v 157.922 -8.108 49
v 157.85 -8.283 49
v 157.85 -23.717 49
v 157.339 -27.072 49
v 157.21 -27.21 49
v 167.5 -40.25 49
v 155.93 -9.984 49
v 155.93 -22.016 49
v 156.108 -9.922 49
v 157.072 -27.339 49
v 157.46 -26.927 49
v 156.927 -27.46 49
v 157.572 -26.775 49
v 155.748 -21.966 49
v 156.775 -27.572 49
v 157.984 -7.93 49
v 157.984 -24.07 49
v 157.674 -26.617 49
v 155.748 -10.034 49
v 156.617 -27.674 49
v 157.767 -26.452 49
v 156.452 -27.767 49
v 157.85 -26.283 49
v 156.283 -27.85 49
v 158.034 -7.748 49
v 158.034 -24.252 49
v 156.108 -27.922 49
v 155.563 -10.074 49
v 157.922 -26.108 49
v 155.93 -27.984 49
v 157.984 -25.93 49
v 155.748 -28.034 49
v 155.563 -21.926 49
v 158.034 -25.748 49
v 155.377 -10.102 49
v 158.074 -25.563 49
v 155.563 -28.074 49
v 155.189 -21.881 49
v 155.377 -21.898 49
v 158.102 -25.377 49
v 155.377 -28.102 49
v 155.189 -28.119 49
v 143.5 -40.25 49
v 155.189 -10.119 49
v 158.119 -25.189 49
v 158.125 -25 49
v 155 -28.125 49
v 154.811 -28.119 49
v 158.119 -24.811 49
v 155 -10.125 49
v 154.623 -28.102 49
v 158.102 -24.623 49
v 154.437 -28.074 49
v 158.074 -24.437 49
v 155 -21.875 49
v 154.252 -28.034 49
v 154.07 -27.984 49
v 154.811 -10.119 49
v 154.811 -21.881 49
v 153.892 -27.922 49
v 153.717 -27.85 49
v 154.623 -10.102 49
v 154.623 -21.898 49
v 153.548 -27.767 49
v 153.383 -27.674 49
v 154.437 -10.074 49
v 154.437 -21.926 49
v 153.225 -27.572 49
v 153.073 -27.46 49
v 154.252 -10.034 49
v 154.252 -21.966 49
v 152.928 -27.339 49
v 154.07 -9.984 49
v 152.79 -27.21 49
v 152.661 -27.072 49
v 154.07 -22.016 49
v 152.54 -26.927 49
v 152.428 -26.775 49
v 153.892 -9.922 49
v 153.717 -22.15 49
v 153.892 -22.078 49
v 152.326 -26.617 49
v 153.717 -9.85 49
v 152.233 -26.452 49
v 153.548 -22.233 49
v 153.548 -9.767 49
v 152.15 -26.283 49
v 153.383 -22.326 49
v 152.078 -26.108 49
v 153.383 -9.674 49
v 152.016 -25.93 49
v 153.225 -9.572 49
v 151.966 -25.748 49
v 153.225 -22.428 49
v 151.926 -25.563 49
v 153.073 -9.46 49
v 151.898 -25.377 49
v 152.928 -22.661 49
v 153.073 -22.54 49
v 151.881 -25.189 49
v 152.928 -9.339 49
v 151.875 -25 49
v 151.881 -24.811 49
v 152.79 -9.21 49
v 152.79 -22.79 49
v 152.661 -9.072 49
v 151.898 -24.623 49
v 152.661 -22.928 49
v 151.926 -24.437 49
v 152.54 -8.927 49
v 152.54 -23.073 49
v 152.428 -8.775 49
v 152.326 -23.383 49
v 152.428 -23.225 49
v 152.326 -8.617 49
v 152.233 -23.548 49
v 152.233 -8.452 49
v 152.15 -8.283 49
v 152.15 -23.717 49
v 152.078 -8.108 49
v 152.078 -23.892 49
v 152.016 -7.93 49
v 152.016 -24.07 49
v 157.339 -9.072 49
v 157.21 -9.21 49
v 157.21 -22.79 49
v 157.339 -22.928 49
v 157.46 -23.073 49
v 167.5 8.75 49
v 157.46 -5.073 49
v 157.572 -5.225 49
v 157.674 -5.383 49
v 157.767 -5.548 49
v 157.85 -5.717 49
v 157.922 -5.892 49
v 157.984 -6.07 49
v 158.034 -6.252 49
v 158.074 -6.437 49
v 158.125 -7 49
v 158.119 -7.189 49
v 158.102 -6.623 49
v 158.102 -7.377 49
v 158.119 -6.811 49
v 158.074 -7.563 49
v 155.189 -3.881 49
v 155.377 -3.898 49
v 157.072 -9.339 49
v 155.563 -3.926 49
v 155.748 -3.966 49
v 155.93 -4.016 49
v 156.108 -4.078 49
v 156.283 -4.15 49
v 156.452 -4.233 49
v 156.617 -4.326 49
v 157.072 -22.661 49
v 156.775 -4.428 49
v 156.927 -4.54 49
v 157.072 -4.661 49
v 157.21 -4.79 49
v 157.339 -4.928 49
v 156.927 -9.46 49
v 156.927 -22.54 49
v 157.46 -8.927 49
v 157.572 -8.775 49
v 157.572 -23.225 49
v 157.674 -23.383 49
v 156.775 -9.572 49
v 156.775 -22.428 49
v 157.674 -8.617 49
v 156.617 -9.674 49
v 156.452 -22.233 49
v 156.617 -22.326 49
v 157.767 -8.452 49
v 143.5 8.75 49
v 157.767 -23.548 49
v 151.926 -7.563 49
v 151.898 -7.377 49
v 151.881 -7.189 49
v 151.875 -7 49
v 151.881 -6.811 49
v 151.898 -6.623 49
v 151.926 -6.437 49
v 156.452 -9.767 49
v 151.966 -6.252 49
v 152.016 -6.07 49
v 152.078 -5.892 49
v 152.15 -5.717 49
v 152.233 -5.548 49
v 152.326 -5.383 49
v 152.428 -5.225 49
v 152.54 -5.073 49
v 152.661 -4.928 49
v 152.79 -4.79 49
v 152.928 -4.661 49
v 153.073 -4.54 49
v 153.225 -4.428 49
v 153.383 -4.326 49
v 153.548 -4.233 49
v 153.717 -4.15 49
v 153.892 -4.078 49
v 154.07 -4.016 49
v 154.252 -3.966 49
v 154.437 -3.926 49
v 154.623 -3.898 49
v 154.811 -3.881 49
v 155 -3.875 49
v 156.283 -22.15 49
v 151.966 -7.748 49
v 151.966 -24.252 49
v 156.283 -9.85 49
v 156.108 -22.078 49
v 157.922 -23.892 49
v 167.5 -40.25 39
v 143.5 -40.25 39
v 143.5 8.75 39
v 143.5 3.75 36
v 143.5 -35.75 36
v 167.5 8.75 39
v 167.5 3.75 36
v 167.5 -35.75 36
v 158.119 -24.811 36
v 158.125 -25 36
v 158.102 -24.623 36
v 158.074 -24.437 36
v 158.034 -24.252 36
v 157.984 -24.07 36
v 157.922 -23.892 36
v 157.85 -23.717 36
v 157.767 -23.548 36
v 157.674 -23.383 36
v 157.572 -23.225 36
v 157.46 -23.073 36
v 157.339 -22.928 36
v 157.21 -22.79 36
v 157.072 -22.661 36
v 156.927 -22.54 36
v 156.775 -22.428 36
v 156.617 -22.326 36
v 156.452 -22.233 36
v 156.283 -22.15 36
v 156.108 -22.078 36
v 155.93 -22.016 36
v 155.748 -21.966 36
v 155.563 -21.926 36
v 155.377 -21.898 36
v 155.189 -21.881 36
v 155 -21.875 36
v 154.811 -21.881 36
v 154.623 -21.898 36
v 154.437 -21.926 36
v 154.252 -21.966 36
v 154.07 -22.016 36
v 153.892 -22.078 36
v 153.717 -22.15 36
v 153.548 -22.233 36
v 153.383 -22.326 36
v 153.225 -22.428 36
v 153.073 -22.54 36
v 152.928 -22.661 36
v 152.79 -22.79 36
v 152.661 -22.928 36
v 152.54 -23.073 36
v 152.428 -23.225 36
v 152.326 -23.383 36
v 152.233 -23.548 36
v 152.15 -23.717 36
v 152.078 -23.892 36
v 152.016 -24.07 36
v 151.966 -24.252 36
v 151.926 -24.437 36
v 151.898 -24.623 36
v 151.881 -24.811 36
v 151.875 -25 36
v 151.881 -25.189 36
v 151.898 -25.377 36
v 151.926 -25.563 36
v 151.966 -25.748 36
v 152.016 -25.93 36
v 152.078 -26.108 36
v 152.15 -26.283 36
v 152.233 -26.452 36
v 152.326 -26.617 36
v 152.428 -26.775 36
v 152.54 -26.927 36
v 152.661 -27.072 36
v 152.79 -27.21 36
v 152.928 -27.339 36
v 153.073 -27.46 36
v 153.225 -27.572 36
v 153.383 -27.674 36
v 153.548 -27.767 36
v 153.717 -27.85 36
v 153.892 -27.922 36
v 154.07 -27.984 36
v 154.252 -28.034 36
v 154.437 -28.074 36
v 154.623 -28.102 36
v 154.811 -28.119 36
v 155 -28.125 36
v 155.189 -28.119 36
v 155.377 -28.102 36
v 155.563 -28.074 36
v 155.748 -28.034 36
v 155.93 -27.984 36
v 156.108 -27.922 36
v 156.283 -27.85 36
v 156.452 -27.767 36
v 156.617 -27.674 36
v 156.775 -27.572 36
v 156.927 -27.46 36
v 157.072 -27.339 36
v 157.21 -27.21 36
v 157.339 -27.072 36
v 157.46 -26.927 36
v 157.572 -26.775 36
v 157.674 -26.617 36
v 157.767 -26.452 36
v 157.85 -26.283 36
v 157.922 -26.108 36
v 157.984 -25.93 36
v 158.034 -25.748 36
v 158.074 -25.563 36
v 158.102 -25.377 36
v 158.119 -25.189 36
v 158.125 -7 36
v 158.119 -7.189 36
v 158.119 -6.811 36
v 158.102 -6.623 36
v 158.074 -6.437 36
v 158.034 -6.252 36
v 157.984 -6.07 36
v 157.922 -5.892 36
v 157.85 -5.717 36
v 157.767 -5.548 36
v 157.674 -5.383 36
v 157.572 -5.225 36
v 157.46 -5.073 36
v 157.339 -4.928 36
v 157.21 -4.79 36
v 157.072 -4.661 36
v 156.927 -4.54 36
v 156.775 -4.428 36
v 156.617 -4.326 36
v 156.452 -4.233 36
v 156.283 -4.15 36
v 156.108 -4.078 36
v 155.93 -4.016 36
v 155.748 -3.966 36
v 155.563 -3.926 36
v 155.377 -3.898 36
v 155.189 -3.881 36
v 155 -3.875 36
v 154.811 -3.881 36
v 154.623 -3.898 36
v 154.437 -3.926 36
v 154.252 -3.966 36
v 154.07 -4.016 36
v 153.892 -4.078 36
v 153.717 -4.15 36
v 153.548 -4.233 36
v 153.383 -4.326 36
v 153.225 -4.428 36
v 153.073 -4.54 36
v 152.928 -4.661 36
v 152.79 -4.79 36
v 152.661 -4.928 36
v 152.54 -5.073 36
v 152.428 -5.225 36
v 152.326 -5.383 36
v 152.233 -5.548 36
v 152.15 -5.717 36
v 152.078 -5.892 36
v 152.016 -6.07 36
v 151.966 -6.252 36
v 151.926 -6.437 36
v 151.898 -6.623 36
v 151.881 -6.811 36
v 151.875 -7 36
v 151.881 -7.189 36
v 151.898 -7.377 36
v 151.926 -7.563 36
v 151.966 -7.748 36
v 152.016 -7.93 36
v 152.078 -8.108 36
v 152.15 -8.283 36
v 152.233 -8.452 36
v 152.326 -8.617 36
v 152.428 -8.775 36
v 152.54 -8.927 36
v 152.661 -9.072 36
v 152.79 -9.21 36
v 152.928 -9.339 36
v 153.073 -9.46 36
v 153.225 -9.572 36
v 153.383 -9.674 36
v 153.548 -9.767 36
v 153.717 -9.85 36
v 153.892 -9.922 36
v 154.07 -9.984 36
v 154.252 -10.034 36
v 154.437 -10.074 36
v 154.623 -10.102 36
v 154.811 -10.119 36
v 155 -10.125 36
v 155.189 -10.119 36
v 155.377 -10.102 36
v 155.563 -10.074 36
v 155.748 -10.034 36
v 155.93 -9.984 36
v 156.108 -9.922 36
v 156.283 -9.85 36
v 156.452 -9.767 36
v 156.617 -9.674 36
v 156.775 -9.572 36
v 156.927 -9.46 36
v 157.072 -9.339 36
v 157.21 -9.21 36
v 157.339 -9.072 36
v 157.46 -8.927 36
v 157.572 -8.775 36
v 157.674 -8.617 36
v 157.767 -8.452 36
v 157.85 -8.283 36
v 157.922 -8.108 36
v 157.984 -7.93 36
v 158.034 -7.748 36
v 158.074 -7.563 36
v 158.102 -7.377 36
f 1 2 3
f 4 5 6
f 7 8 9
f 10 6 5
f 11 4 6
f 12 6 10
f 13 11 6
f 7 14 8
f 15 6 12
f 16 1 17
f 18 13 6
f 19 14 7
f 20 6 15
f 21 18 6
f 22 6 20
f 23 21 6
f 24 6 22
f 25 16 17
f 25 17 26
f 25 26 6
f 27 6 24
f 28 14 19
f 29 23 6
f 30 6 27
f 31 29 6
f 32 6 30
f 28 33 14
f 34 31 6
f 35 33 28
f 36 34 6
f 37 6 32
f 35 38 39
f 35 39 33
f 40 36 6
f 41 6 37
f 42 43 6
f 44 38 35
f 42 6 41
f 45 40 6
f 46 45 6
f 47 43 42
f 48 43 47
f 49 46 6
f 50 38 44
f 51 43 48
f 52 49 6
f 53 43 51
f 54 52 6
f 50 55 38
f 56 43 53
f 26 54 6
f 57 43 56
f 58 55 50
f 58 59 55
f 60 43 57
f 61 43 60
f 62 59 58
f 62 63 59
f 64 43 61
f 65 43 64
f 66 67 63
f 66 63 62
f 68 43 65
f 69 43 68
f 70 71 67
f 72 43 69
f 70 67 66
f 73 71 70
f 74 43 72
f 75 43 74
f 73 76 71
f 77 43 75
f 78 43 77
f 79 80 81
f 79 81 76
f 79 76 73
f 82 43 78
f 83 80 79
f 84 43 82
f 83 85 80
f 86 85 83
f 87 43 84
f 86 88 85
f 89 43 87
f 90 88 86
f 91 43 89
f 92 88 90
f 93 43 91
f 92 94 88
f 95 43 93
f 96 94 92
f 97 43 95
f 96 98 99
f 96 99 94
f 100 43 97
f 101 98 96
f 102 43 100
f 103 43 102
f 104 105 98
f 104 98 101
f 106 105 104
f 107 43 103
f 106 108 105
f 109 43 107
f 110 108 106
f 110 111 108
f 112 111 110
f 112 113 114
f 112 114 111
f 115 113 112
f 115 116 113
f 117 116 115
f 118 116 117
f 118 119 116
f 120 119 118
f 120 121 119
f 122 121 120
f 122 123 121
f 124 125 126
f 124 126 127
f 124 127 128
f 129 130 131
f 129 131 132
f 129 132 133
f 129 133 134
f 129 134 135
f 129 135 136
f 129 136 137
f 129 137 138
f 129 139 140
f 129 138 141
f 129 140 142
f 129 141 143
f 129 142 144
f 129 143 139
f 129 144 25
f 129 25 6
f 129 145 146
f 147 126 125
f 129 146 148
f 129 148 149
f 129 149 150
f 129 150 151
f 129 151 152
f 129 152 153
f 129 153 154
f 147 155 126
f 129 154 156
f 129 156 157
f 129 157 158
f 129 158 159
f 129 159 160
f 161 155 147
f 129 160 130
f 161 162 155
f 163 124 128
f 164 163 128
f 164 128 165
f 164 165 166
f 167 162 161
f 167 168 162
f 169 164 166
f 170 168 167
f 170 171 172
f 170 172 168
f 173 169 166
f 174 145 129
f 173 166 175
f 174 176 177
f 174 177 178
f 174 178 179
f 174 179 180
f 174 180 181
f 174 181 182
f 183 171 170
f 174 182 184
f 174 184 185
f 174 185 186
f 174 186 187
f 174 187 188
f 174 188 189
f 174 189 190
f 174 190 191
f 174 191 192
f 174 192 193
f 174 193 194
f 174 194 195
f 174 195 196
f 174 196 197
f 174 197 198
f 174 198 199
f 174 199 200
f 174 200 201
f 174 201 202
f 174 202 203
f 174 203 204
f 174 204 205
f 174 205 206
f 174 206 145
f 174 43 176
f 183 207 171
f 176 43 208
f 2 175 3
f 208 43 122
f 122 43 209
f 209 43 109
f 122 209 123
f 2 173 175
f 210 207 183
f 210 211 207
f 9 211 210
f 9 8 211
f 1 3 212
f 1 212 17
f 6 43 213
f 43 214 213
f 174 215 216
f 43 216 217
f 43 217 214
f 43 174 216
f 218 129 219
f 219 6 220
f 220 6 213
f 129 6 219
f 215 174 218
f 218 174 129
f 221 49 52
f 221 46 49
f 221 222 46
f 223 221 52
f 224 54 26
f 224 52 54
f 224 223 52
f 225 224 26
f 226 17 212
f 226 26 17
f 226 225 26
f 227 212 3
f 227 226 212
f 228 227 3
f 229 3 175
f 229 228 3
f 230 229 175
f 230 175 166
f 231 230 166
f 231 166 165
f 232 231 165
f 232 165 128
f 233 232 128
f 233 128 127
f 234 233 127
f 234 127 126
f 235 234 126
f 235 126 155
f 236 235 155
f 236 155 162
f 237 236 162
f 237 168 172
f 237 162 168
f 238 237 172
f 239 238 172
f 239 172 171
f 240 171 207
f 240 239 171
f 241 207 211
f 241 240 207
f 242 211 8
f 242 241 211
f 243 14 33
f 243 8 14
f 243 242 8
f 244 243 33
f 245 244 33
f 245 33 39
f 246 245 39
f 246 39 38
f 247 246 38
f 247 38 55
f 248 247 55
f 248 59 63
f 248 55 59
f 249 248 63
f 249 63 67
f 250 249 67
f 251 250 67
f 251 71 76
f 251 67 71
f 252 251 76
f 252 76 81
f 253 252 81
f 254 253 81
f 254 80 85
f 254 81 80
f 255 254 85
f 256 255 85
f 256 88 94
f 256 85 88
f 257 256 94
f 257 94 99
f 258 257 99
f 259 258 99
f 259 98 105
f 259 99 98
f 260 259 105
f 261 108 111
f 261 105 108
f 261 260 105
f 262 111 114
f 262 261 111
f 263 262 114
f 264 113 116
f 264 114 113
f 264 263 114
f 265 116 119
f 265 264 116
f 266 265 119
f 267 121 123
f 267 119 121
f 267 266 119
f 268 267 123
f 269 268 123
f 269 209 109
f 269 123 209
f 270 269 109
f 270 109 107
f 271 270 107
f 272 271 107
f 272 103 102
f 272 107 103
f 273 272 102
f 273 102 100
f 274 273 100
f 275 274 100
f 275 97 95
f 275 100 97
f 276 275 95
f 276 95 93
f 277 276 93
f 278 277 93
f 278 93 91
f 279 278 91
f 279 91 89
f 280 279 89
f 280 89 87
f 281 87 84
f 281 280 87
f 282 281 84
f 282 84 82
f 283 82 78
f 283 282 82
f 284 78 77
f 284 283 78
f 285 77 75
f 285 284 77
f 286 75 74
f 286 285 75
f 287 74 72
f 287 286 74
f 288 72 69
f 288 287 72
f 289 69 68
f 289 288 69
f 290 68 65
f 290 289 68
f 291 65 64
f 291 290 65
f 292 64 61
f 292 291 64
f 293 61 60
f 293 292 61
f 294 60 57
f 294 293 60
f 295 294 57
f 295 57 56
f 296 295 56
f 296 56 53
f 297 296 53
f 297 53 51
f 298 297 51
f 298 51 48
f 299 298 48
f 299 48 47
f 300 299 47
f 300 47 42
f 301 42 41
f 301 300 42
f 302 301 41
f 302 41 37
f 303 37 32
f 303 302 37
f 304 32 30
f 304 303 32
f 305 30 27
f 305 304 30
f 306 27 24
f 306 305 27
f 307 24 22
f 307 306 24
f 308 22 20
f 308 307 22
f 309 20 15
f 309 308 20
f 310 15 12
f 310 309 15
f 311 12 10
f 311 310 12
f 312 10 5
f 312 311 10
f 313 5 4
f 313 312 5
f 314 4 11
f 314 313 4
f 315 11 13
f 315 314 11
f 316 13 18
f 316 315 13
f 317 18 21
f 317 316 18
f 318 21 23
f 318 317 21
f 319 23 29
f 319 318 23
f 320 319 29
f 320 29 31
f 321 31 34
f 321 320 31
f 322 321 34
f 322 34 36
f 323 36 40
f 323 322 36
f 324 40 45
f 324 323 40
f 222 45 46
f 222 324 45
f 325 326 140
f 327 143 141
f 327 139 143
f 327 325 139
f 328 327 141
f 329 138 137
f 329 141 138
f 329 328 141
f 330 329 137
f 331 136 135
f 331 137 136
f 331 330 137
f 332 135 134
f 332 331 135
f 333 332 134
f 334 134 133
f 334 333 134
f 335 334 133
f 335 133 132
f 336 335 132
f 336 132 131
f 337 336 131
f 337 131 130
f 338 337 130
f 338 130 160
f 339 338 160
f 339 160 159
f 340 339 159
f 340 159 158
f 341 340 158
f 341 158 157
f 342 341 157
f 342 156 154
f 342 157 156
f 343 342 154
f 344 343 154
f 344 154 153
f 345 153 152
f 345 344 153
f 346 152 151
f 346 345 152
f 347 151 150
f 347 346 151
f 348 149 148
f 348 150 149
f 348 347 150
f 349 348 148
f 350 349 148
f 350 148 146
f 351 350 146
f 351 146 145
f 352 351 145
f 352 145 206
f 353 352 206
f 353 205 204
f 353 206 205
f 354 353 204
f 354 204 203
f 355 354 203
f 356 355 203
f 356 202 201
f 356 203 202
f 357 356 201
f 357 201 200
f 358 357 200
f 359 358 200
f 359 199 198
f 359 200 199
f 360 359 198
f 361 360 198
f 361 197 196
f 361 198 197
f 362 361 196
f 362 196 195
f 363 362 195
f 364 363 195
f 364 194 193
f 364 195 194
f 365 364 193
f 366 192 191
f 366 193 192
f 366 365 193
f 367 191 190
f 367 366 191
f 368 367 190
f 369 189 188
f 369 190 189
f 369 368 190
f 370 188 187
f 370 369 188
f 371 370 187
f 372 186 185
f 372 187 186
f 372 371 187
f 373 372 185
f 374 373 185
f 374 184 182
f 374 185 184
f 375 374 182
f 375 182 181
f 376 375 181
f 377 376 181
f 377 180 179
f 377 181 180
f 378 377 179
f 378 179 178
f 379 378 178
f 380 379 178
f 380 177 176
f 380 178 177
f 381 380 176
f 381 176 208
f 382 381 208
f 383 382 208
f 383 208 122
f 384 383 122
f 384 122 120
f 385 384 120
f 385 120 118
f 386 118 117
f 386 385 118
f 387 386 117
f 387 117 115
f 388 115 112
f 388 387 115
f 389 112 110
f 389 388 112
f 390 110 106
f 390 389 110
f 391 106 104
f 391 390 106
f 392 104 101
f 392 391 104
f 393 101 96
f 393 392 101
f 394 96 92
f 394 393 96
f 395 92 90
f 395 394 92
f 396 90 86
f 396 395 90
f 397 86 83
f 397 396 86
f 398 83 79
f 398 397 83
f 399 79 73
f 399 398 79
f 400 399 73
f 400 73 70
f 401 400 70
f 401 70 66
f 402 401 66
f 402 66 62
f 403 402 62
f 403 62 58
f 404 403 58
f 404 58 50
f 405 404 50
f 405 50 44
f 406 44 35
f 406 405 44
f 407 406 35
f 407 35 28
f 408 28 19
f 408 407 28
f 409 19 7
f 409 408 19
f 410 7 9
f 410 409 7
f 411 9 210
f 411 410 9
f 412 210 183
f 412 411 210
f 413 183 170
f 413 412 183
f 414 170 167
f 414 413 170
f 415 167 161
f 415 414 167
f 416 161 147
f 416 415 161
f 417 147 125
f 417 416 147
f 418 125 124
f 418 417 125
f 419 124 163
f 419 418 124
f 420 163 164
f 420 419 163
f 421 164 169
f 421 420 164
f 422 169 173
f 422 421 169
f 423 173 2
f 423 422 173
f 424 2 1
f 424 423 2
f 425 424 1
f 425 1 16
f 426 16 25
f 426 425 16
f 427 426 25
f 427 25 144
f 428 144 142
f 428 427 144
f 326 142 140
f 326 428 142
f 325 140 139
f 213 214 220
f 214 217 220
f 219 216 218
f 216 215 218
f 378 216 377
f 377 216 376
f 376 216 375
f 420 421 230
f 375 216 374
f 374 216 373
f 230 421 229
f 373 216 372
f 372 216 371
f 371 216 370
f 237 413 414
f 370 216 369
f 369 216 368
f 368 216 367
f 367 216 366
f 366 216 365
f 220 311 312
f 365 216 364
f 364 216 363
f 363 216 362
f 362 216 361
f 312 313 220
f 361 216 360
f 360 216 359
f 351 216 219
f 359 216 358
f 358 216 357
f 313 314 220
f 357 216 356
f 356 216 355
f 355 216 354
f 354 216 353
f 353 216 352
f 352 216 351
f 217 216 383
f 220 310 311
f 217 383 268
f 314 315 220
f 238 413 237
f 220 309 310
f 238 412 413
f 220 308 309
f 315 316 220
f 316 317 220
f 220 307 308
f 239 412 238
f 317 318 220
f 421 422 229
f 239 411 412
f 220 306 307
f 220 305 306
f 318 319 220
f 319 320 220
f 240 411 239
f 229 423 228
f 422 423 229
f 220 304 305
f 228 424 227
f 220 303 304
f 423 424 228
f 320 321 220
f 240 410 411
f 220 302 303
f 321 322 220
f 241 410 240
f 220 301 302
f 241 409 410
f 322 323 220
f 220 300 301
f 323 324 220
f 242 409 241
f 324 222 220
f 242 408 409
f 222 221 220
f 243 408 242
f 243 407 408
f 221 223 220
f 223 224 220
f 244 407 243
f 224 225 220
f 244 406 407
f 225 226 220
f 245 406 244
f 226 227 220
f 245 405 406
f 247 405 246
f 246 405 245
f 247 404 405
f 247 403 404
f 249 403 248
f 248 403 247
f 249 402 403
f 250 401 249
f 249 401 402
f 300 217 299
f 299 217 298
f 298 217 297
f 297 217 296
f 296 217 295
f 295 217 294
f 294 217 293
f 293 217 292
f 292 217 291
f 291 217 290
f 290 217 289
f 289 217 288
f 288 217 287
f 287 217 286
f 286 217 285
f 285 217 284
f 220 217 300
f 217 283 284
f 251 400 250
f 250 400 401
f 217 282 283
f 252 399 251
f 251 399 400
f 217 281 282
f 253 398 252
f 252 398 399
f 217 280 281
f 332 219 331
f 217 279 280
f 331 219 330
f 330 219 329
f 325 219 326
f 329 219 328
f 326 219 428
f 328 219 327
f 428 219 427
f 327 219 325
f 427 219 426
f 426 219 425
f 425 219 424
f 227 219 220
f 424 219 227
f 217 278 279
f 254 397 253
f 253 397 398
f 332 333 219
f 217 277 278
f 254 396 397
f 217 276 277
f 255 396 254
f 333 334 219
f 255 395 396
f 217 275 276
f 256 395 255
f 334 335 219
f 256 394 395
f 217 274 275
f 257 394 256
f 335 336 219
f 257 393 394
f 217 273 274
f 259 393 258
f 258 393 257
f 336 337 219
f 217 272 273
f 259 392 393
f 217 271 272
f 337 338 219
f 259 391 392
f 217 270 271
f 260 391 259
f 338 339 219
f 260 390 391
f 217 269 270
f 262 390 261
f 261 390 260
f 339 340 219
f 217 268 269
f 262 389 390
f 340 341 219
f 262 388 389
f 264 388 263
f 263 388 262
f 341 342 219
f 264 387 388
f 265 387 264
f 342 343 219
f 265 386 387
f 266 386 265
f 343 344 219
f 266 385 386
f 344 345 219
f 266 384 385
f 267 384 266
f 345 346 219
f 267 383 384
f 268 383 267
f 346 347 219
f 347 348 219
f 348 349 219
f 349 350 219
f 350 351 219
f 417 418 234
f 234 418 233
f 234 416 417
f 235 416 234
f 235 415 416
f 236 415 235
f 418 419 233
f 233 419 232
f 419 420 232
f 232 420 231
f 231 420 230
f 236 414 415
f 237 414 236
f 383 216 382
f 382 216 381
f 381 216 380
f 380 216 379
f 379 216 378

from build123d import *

# Parameters (mm, degrees)
PAD001_DEPTH    = 24
SKETCH021_R     = 3.125
POCKET019_DEPTH = 49.001


with BuildPart() as part:
    # Sketch020 → Pad001 (new body)
    with BuildSketch(Plane.YZ.offset(143.5)):
        Polygon((-40.25, 49), (8.75, 49), (8.75, 39), (3.75, 36), (-35.75, 36), (-40.25, 39), align=None)
    extrude(amount=PAD001_DEPTH)

    # Sketch021 → Pocket019 (cut, through all)
    with BuildSketch(Plane.XY):
        with Locations((155, -7)):
            Circle(SKETCH021_R)
        with Locations((155, -25)):
            Circle(SKETCH021_R)
    extrude(amount=POCKET019_DEPTH, mode=Mode.SUBTRACT)


solid = part.part
